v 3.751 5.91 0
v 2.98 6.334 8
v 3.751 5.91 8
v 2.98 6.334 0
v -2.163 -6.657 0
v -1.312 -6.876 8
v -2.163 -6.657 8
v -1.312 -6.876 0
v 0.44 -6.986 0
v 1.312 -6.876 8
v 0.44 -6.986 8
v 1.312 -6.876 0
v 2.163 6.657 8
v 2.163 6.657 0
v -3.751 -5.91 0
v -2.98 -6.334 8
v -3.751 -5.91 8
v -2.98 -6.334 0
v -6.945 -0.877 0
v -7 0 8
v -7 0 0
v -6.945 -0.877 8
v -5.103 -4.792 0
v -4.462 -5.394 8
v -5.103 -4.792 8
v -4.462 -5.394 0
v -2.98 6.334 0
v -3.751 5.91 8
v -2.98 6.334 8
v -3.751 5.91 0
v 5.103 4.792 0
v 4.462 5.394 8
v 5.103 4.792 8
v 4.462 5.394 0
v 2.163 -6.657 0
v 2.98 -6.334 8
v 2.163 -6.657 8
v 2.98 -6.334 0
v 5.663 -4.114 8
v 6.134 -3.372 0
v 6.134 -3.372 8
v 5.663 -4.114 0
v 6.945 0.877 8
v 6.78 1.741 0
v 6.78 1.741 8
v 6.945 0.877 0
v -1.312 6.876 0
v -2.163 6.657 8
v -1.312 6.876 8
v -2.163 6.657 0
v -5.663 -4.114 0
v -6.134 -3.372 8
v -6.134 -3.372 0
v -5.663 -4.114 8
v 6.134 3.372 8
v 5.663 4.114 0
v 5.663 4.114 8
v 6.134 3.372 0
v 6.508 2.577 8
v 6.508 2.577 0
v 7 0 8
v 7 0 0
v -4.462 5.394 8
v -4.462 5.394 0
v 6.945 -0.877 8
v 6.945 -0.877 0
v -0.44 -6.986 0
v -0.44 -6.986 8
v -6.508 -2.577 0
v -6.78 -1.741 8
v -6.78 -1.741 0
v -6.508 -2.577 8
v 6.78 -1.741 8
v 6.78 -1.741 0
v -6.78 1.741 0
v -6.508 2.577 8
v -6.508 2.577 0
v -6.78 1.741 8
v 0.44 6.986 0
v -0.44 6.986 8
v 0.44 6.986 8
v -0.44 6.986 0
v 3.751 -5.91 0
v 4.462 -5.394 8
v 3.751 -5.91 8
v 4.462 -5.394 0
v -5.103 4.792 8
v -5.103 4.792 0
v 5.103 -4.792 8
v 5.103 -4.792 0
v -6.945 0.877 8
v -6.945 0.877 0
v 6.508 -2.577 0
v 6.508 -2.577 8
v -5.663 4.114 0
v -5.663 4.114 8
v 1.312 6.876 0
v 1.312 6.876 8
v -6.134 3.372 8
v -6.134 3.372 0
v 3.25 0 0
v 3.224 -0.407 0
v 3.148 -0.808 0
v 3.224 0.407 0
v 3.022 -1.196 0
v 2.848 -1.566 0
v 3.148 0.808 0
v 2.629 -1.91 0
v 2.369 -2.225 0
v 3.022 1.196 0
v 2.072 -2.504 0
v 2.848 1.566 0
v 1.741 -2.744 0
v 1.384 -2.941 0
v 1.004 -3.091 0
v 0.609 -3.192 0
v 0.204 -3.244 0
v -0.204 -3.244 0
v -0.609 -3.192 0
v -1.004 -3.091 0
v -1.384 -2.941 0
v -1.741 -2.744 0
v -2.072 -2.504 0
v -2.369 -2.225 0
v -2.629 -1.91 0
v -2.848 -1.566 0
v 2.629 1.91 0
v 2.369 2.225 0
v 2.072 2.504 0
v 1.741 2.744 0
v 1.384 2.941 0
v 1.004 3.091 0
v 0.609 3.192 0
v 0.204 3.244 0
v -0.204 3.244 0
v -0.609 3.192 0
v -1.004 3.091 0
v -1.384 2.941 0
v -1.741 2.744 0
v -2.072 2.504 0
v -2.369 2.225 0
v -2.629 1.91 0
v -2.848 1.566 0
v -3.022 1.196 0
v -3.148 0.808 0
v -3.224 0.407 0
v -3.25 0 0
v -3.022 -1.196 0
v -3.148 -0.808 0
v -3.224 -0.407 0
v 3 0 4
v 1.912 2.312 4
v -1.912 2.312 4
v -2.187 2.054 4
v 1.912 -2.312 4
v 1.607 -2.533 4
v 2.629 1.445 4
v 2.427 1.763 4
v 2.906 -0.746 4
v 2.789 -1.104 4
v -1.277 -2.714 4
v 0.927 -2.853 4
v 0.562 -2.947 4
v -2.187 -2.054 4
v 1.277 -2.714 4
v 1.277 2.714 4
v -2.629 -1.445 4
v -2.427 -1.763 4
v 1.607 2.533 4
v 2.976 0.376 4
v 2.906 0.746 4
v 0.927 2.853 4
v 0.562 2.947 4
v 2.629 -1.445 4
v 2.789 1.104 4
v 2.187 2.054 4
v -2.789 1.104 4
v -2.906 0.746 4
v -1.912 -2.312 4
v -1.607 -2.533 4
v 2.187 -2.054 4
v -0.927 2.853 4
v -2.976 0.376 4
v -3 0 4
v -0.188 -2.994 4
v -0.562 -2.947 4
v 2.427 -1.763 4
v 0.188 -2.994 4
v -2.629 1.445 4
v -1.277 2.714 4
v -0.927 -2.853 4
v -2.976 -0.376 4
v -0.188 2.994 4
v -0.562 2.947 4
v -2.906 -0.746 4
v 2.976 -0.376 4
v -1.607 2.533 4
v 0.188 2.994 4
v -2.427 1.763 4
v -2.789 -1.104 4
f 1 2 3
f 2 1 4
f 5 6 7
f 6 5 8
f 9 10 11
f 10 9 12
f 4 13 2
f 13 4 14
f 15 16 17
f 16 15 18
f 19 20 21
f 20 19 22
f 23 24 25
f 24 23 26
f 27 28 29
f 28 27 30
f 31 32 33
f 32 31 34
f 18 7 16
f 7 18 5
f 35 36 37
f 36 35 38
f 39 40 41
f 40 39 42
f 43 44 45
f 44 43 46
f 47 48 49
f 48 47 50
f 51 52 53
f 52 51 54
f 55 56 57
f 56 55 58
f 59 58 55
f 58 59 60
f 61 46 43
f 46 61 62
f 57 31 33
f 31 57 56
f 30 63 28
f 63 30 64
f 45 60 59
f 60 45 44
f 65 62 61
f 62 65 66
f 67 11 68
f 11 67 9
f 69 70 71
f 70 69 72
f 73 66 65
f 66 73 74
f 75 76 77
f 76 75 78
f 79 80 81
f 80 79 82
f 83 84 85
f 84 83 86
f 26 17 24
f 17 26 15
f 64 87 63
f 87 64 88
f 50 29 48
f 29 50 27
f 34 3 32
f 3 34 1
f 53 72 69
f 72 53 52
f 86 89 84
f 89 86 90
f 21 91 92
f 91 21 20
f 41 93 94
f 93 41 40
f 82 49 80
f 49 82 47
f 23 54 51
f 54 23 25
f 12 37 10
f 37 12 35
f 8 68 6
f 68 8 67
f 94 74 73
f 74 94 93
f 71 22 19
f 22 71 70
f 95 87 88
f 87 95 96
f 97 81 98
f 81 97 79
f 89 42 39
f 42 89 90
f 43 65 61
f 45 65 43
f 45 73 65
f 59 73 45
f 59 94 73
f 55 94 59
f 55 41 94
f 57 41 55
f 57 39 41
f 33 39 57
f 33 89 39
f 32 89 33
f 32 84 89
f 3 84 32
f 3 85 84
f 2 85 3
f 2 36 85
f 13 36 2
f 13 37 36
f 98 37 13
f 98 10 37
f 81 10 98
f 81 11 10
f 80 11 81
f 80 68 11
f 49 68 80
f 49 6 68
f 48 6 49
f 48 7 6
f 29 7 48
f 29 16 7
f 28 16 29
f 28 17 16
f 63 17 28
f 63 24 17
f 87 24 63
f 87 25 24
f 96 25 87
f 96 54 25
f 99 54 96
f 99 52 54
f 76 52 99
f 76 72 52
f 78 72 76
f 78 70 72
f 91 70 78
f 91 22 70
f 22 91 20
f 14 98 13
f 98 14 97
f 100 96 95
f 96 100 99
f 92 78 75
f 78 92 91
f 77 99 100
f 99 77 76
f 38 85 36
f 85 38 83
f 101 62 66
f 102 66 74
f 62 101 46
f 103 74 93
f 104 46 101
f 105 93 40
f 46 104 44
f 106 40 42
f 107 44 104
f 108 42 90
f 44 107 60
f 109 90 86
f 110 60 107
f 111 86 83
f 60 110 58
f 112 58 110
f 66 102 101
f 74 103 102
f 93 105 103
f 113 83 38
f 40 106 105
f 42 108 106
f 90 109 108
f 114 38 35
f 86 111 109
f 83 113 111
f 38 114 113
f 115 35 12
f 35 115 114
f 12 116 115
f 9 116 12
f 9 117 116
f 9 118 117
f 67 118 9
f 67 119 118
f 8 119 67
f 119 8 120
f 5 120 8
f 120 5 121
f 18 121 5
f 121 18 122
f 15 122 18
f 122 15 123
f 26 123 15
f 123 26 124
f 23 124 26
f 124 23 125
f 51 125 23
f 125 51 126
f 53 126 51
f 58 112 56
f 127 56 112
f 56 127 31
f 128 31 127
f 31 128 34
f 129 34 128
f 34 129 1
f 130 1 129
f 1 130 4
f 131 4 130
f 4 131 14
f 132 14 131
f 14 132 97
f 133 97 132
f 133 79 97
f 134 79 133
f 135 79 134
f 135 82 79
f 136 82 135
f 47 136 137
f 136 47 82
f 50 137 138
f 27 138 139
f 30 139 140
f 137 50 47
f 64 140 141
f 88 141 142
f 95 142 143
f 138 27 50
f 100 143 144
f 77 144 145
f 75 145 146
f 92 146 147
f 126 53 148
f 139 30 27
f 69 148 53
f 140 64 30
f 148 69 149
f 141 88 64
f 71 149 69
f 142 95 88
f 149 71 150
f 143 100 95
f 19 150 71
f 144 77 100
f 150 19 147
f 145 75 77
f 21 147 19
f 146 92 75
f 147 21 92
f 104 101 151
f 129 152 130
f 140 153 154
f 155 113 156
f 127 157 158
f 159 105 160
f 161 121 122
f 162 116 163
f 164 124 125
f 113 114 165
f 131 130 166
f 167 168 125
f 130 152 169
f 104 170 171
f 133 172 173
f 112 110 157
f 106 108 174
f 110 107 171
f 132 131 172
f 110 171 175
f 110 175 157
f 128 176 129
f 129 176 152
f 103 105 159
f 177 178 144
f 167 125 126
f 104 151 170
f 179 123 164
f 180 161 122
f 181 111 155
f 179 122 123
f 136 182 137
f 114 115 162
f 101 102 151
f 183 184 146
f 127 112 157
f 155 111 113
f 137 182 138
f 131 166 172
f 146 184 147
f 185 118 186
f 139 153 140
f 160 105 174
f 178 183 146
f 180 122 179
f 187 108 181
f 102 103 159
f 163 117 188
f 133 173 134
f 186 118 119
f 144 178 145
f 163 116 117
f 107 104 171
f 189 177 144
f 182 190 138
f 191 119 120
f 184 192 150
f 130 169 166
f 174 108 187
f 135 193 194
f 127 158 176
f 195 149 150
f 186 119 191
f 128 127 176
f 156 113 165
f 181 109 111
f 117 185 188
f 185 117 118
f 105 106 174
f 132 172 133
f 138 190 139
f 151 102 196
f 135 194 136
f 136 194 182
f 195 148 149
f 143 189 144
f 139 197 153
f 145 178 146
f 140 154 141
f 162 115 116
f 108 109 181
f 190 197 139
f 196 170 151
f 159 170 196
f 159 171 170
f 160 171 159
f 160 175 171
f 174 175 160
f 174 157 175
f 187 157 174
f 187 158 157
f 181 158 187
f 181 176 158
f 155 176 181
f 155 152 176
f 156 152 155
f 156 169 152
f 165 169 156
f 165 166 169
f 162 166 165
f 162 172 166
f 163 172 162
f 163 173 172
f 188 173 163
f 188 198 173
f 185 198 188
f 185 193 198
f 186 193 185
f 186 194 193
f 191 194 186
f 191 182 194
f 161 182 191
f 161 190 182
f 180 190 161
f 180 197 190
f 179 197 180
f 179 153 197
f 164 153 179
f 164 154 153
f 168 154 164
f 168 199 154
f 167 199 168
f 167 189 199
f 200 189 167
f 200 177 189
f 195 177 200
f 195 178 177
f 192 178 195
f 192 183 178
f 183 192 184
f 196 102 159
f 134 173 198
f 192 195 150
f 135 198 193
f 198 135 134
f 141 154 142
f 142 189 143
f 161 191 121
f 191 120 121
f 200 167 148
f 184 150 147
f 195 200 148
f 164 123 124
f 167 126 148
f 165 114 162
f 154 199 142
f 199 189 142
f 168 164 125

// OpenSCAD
// button extension for foot heater pad.

$fn=50;
module main() {
  H=8;
  difference() {
    cylinder(H,d=14);
    cylinder(H/2,d1=6.5,d2=6);
  }
}

main();
